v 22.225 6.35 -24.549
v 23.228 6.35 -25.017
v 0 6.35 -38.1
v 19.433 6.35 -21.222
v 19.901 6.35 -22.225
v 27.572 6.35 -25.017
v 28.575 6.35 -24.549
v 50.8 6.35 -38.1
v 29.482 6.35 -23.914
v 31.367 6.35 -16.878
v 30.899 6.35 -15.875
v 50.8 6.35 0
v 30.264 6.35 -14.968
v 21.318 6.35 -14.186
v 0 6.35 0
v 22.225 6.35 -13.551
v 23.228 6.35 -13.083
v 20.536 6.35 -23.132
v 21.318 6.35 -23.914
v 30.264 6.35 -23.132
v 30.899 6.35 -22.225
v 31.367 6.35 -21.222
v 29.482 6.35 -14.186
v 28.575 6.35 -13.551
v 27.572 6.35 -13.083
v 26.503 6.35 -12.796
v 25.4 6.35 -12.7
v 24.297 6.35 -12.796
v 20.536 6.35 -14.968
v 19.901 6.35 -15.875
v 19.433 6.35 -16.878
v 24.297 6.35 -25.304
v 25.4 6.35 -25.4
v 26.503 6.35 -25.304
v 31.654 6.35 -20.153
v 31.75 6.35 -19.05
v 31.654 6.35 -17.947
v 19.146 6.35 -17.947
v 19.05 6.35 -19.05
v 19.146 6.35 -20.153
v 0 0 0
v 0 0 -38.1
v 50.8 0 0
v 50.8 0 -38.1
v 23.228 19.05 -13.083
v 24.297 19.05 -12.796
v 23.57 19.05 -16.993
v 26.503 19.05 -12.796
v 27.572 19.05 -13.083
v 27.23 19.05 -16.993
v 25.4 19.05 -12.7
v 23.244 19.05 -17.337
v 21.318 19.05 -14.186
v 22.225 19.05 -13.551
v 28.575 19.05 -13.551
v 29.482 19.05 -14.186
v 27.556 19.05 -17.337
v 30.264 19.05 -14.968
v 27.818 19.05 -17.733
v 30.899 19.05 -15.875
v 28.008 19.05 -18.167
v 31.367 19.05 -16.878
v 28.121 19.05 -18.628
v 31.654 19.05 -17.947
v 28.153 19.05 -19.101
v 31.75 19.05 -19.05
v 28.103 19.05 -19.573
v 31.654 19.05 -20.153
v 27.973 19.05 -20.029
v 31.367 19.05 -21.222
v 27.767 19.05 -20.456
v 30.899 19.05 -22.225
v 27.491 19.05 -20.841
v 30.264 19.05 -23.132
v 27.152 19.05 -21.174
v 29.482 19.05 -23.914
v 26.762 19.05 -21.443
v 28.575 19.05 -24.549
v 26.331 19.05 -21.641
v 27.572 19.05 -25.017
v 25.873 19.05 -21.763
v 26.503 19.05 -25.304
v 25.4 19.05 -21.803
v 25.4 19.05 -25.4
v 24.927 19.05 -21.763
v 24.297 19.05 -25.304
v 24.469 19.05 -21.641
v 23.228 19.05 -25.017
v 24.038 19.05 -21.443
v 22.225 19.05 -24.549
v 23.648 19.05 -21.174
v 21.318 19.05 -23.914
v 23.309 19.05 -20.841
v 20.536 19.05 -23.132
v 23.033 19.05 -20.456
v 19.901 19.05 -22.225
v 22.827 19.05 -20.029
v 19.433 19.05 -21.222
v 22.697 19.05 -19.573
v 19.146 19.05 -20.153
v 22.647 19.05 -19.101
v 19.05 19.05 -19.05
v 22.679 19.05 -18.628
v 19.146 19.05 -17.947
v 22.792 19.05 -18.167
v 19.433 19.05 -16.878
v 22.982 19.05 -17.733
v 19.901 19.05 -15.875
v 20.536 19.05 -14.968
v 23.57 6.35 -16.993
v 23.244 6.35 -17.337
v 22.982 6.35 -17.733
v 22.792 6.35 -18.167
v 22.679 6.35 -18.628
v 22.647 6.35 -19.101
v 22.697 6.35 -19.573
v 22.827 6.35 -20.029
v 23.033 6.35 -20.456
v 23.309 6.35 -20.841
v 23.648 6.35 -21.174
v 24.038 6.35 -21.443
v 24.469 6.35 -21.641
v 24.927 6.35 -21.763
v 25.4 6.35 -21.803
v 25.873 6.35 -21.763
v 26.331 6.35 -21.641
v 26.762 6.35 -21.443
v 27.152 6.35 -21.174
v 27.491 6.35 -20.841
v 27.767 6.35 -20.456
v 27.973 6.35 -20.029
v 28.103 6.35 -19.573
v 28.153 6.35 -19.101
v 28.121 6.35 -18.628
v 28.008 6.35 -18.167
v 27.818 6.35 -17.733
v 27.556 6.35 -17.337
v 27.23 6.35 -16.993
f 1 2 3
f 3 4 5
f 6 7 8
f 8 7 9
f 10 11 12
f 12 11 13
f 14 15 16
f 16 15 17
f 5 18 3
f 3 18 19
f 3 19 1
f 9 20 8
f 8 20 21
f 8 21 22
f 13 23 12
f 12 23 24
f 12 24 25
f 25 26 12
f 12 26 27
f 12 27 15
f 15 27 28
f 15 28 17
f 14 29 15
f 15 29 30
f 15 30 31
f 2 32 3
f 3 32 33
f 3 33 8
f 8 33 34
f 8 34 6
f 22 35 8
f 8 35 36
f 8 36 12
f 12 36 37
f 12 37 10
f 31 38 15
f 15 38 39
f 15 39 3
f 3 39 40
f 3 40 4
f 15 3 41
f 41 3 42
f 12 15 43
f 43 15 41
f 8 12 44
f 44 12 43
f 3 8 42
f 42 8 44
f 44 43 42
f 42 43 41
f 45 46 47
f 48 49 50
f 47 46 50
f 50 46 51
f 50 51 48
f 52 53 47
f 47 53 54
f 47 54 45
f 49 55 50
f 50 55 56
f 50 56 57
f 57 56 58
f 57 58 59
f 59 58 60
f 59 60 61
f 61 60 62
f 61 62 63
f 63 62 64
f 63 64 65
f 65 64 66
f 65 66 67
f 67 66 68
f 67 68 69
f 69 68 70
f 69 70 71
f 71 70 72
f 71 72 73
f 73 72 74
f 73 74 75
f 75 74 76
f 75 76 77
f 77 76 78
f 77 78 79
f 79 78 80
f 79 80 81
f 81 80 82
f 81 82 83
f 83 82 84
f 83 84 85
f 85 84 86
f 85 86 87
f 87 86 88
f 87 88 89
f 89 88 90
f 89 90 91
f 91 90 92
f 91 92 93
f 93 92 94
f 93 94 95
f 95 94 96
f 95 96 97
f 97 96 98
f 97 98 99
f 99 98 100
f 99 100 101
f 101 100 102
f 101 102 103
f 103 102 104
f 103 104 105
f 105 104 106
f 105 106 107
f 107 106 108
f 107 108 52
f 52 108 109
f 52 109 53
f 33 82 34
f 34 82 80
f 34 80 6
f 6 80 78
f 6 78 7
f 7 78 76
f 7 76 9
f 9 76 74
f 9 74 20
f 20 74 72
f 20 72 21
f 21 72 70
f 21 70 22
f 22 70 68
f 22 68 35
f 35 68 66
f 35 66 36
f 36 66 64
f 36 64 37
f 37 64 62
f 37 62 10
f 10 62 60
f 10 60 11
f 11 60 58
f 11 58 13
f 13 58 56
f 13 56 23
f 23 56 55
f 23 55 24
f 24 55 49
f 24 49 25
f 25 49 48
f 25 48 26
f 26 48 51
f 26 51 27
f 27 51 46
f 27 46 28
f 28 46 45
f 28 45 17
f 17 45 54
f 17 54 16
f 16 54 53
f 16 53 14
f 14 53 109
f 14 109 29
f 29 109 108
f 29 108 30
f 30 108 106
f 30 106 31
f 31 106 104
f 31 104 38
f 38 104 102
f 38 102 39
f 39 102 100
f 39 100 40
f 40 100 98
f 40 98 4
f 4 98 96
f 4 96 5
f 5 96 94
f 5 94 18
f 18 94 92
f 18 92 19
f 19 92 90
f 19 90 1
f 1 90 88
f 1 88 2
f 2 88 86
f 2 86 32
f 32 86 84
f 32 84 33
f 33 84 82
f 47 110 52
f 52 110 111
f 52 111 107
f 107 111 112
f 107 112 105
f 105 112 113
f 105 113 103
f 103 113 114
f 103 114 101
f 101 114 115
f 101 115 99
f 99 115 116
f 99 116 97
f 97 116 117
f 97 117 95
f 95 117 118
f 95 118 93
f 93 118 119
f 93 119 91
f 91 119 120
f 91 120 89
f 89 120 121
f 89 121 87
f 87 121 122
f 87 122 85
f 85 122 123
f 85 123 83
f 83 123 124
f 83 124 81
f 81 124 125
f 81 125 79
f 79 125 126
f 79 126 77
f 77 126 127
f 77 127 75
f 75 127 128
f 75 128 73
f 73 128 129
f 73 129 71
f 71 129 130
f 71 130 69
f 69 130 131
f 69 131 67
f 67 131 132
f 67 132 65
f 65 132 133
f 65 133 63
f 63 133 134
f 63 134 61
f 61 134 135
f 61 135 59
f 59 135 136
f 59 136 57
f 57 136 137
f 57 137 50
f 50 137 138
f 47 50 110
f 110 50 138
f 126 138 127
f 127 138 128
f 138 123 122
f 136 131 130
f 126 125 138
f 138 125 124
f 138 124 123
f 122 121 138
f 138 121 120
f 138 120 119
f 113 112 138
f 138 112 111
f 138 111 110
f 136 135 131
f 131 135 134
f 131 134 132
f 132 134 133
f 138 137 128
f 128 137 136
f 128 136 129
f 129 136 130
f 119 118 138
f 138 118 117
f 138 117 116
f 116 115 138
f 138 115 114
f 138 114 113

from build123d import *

# Parameters (mm, degrees)
SKETCH1_W           = 50.8
SKETCH1_H           = 38.1
BOSS_EXTRUDE1_DEPTH = 6.35
SKETCH2_R           = 6.35
BOSS_EXTRUDE2_DEPTH = 12.7


with BuildPart() as part:
    # Sketch1 → Boss-Extrude1 (new body)
    with BuildSketch(Plane(origin=(0, 0, 0), x_dir=(1, 0, 0), z_dir=(0, 1, 0))):
        with Locations((25.4, 19.05)):
            Rectangle(SKETCH1_W, SKETCH1_H)
    extrude(amount=BOSS_EXTRUDE1_DEPTH)

    # Sketch2 → Boss-Extrude2 (add)
    with BuildSketch(Plane(origin=(0, 6.35, 0), x_dir=(1, 0, 0), z_dir=(0, 1, 0))):
        with Locations(Location((25.4, 19.05, 0), (0, 0, 270))):
            Circle(SKETCH2_R)
        with BuildLine():
            Line((23.570219541, 16.9926), (27.229780459, 16.9926))
            ThreePointArc((27.229780459, 16.9926), (25.4, 21.80336), (23.570219541, 16.9926))
        make_face(mode=Mode.SUBTRACT)
    extrude(amount=BOSS_EXTRUDE2_DEPTH)


solid = part.part
